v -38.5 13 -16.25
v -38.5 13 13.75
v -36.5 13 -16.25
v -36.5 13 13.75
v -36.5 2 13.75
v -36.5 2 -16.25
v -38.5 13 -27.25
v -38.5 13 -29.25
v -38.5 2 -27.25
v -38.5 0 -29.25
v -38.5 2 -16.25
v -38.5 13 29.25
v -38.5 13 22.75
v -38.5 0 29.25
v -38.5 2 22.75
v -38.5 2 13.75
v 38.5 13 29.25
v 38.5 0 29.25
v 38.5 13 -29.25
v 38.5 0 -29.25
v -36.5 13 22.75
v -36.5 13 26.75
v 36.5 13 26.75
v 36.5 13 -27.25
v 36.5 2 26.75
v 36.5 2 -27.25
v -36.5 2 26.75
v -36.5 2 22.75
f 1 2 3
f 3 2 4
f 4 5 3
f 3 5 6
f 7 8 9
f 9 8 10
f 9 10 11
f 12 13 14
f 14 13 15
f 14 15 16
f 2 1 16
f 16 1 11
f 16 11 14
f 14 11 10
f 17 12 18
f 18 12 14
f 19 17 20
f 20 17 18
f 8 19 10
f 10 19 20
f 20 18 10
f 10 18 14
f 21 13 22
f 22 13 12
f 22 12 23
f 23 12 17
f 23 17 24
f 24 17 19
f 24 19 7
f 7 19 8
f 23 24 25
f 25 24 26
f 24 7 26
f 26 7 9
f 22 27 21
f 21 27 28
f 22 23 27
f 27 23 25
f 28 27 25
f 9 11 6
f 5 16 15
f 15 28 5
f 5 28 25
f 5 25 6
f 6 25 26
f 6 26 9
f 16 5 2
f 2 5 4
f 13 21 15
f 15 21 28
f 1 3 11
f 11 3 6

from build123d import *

# Parameters (mm, degrees)
SKETCH_1_W          = 77
SKETCH_1_H          = 58.5
EXTRUDE_1_DEPTH     = 2
SKETCH_2_W          = 77
SKETCH_2_H          = 58.5
SKETCH_2_W_2        = 73
SKETCH_2_H_2        = 54
EXTRUDE_2_DEPTH     = 11
CUT_EXTRUDE_1_REACH = 85.388
SKETCH_3_W          = 9
SKETCH_3_H          = 11
SKETCH_3_W_2        = 11


with BuildPart() as part:
    # 草图1 → 凸台-拉伸1 (new body)
    with BuildSketch(Plane(origin=(0, 0, 0), x_dir=(1, 0, 0), z_dir=(0, 1, 0))):
        Rectangle(SKETCH_1_W, SKETCH_1_H)
    extrude(amount=EXTRUDE_1_DEPTH)

    # 草图2 → 凸台-拉伸2 (add)
    with BuildSketch(Plane(origin=(0, 2, 0), x_dir=(1, 0, 0), z_dir=(0, 1, 0))):
        Rectangle(SKETCH_2_W, SKETCH_2_H)
        with Locations((0, 0.25)):
            Rectangle(SKETCH_2_W_2, SKETCH_2_H_2, mode=Mode.SUBTRACT)
    extrude(amount=EXTRUDE_2_DEPTH)

    # 草图3 → 切除-拉伸1 (cut, up to next)
    with BuildSketch(Plane.ZY.offset(38.5), mode=Mode.PRIVATE) as cut_extrude_1_sk1:
        with Locations((18.25, 7.5)):
            Rectangle(SKETCH_3_W, SKETCH_3_H)
    cut_extrude_1_tool1 = extrude(cut_extrude_1_sk1.sketch, amount=-CUT_EXTRUDE_1_REACH, mode=Mode.PRIVATE) & part.part
    # 草图3 → 切除-拉伸1 (cut, up to next)
    with BuildSketch(Plane.ZY.offset(38.5), mode=Mode.PRIVATE) as cut_extrude_1_sk2:
        with Locations((-21.75, 7.5)):
            Rectangle(SKETCH_3_W_2, SKETCH_3_H)
    cut_extrude_1_tool2 = extrude(cut_extrude_1_sk2.sketch, amount=-CUT_EXTRUDE_1_REACH, mode=Mode.PRIVATE) & part.part
    add(cut_extrude_1_tool1.solids().sort_by_distance((-38.5, 7.5, 18.25))[0], mode=Mode.SUBTRACT)
    add(cut_extrude_1_tool2.solids().sort_by_distance((-38.5, 7.5, -21.75))[0], mode=Mode.SUBTRACT)


solid = part.part
